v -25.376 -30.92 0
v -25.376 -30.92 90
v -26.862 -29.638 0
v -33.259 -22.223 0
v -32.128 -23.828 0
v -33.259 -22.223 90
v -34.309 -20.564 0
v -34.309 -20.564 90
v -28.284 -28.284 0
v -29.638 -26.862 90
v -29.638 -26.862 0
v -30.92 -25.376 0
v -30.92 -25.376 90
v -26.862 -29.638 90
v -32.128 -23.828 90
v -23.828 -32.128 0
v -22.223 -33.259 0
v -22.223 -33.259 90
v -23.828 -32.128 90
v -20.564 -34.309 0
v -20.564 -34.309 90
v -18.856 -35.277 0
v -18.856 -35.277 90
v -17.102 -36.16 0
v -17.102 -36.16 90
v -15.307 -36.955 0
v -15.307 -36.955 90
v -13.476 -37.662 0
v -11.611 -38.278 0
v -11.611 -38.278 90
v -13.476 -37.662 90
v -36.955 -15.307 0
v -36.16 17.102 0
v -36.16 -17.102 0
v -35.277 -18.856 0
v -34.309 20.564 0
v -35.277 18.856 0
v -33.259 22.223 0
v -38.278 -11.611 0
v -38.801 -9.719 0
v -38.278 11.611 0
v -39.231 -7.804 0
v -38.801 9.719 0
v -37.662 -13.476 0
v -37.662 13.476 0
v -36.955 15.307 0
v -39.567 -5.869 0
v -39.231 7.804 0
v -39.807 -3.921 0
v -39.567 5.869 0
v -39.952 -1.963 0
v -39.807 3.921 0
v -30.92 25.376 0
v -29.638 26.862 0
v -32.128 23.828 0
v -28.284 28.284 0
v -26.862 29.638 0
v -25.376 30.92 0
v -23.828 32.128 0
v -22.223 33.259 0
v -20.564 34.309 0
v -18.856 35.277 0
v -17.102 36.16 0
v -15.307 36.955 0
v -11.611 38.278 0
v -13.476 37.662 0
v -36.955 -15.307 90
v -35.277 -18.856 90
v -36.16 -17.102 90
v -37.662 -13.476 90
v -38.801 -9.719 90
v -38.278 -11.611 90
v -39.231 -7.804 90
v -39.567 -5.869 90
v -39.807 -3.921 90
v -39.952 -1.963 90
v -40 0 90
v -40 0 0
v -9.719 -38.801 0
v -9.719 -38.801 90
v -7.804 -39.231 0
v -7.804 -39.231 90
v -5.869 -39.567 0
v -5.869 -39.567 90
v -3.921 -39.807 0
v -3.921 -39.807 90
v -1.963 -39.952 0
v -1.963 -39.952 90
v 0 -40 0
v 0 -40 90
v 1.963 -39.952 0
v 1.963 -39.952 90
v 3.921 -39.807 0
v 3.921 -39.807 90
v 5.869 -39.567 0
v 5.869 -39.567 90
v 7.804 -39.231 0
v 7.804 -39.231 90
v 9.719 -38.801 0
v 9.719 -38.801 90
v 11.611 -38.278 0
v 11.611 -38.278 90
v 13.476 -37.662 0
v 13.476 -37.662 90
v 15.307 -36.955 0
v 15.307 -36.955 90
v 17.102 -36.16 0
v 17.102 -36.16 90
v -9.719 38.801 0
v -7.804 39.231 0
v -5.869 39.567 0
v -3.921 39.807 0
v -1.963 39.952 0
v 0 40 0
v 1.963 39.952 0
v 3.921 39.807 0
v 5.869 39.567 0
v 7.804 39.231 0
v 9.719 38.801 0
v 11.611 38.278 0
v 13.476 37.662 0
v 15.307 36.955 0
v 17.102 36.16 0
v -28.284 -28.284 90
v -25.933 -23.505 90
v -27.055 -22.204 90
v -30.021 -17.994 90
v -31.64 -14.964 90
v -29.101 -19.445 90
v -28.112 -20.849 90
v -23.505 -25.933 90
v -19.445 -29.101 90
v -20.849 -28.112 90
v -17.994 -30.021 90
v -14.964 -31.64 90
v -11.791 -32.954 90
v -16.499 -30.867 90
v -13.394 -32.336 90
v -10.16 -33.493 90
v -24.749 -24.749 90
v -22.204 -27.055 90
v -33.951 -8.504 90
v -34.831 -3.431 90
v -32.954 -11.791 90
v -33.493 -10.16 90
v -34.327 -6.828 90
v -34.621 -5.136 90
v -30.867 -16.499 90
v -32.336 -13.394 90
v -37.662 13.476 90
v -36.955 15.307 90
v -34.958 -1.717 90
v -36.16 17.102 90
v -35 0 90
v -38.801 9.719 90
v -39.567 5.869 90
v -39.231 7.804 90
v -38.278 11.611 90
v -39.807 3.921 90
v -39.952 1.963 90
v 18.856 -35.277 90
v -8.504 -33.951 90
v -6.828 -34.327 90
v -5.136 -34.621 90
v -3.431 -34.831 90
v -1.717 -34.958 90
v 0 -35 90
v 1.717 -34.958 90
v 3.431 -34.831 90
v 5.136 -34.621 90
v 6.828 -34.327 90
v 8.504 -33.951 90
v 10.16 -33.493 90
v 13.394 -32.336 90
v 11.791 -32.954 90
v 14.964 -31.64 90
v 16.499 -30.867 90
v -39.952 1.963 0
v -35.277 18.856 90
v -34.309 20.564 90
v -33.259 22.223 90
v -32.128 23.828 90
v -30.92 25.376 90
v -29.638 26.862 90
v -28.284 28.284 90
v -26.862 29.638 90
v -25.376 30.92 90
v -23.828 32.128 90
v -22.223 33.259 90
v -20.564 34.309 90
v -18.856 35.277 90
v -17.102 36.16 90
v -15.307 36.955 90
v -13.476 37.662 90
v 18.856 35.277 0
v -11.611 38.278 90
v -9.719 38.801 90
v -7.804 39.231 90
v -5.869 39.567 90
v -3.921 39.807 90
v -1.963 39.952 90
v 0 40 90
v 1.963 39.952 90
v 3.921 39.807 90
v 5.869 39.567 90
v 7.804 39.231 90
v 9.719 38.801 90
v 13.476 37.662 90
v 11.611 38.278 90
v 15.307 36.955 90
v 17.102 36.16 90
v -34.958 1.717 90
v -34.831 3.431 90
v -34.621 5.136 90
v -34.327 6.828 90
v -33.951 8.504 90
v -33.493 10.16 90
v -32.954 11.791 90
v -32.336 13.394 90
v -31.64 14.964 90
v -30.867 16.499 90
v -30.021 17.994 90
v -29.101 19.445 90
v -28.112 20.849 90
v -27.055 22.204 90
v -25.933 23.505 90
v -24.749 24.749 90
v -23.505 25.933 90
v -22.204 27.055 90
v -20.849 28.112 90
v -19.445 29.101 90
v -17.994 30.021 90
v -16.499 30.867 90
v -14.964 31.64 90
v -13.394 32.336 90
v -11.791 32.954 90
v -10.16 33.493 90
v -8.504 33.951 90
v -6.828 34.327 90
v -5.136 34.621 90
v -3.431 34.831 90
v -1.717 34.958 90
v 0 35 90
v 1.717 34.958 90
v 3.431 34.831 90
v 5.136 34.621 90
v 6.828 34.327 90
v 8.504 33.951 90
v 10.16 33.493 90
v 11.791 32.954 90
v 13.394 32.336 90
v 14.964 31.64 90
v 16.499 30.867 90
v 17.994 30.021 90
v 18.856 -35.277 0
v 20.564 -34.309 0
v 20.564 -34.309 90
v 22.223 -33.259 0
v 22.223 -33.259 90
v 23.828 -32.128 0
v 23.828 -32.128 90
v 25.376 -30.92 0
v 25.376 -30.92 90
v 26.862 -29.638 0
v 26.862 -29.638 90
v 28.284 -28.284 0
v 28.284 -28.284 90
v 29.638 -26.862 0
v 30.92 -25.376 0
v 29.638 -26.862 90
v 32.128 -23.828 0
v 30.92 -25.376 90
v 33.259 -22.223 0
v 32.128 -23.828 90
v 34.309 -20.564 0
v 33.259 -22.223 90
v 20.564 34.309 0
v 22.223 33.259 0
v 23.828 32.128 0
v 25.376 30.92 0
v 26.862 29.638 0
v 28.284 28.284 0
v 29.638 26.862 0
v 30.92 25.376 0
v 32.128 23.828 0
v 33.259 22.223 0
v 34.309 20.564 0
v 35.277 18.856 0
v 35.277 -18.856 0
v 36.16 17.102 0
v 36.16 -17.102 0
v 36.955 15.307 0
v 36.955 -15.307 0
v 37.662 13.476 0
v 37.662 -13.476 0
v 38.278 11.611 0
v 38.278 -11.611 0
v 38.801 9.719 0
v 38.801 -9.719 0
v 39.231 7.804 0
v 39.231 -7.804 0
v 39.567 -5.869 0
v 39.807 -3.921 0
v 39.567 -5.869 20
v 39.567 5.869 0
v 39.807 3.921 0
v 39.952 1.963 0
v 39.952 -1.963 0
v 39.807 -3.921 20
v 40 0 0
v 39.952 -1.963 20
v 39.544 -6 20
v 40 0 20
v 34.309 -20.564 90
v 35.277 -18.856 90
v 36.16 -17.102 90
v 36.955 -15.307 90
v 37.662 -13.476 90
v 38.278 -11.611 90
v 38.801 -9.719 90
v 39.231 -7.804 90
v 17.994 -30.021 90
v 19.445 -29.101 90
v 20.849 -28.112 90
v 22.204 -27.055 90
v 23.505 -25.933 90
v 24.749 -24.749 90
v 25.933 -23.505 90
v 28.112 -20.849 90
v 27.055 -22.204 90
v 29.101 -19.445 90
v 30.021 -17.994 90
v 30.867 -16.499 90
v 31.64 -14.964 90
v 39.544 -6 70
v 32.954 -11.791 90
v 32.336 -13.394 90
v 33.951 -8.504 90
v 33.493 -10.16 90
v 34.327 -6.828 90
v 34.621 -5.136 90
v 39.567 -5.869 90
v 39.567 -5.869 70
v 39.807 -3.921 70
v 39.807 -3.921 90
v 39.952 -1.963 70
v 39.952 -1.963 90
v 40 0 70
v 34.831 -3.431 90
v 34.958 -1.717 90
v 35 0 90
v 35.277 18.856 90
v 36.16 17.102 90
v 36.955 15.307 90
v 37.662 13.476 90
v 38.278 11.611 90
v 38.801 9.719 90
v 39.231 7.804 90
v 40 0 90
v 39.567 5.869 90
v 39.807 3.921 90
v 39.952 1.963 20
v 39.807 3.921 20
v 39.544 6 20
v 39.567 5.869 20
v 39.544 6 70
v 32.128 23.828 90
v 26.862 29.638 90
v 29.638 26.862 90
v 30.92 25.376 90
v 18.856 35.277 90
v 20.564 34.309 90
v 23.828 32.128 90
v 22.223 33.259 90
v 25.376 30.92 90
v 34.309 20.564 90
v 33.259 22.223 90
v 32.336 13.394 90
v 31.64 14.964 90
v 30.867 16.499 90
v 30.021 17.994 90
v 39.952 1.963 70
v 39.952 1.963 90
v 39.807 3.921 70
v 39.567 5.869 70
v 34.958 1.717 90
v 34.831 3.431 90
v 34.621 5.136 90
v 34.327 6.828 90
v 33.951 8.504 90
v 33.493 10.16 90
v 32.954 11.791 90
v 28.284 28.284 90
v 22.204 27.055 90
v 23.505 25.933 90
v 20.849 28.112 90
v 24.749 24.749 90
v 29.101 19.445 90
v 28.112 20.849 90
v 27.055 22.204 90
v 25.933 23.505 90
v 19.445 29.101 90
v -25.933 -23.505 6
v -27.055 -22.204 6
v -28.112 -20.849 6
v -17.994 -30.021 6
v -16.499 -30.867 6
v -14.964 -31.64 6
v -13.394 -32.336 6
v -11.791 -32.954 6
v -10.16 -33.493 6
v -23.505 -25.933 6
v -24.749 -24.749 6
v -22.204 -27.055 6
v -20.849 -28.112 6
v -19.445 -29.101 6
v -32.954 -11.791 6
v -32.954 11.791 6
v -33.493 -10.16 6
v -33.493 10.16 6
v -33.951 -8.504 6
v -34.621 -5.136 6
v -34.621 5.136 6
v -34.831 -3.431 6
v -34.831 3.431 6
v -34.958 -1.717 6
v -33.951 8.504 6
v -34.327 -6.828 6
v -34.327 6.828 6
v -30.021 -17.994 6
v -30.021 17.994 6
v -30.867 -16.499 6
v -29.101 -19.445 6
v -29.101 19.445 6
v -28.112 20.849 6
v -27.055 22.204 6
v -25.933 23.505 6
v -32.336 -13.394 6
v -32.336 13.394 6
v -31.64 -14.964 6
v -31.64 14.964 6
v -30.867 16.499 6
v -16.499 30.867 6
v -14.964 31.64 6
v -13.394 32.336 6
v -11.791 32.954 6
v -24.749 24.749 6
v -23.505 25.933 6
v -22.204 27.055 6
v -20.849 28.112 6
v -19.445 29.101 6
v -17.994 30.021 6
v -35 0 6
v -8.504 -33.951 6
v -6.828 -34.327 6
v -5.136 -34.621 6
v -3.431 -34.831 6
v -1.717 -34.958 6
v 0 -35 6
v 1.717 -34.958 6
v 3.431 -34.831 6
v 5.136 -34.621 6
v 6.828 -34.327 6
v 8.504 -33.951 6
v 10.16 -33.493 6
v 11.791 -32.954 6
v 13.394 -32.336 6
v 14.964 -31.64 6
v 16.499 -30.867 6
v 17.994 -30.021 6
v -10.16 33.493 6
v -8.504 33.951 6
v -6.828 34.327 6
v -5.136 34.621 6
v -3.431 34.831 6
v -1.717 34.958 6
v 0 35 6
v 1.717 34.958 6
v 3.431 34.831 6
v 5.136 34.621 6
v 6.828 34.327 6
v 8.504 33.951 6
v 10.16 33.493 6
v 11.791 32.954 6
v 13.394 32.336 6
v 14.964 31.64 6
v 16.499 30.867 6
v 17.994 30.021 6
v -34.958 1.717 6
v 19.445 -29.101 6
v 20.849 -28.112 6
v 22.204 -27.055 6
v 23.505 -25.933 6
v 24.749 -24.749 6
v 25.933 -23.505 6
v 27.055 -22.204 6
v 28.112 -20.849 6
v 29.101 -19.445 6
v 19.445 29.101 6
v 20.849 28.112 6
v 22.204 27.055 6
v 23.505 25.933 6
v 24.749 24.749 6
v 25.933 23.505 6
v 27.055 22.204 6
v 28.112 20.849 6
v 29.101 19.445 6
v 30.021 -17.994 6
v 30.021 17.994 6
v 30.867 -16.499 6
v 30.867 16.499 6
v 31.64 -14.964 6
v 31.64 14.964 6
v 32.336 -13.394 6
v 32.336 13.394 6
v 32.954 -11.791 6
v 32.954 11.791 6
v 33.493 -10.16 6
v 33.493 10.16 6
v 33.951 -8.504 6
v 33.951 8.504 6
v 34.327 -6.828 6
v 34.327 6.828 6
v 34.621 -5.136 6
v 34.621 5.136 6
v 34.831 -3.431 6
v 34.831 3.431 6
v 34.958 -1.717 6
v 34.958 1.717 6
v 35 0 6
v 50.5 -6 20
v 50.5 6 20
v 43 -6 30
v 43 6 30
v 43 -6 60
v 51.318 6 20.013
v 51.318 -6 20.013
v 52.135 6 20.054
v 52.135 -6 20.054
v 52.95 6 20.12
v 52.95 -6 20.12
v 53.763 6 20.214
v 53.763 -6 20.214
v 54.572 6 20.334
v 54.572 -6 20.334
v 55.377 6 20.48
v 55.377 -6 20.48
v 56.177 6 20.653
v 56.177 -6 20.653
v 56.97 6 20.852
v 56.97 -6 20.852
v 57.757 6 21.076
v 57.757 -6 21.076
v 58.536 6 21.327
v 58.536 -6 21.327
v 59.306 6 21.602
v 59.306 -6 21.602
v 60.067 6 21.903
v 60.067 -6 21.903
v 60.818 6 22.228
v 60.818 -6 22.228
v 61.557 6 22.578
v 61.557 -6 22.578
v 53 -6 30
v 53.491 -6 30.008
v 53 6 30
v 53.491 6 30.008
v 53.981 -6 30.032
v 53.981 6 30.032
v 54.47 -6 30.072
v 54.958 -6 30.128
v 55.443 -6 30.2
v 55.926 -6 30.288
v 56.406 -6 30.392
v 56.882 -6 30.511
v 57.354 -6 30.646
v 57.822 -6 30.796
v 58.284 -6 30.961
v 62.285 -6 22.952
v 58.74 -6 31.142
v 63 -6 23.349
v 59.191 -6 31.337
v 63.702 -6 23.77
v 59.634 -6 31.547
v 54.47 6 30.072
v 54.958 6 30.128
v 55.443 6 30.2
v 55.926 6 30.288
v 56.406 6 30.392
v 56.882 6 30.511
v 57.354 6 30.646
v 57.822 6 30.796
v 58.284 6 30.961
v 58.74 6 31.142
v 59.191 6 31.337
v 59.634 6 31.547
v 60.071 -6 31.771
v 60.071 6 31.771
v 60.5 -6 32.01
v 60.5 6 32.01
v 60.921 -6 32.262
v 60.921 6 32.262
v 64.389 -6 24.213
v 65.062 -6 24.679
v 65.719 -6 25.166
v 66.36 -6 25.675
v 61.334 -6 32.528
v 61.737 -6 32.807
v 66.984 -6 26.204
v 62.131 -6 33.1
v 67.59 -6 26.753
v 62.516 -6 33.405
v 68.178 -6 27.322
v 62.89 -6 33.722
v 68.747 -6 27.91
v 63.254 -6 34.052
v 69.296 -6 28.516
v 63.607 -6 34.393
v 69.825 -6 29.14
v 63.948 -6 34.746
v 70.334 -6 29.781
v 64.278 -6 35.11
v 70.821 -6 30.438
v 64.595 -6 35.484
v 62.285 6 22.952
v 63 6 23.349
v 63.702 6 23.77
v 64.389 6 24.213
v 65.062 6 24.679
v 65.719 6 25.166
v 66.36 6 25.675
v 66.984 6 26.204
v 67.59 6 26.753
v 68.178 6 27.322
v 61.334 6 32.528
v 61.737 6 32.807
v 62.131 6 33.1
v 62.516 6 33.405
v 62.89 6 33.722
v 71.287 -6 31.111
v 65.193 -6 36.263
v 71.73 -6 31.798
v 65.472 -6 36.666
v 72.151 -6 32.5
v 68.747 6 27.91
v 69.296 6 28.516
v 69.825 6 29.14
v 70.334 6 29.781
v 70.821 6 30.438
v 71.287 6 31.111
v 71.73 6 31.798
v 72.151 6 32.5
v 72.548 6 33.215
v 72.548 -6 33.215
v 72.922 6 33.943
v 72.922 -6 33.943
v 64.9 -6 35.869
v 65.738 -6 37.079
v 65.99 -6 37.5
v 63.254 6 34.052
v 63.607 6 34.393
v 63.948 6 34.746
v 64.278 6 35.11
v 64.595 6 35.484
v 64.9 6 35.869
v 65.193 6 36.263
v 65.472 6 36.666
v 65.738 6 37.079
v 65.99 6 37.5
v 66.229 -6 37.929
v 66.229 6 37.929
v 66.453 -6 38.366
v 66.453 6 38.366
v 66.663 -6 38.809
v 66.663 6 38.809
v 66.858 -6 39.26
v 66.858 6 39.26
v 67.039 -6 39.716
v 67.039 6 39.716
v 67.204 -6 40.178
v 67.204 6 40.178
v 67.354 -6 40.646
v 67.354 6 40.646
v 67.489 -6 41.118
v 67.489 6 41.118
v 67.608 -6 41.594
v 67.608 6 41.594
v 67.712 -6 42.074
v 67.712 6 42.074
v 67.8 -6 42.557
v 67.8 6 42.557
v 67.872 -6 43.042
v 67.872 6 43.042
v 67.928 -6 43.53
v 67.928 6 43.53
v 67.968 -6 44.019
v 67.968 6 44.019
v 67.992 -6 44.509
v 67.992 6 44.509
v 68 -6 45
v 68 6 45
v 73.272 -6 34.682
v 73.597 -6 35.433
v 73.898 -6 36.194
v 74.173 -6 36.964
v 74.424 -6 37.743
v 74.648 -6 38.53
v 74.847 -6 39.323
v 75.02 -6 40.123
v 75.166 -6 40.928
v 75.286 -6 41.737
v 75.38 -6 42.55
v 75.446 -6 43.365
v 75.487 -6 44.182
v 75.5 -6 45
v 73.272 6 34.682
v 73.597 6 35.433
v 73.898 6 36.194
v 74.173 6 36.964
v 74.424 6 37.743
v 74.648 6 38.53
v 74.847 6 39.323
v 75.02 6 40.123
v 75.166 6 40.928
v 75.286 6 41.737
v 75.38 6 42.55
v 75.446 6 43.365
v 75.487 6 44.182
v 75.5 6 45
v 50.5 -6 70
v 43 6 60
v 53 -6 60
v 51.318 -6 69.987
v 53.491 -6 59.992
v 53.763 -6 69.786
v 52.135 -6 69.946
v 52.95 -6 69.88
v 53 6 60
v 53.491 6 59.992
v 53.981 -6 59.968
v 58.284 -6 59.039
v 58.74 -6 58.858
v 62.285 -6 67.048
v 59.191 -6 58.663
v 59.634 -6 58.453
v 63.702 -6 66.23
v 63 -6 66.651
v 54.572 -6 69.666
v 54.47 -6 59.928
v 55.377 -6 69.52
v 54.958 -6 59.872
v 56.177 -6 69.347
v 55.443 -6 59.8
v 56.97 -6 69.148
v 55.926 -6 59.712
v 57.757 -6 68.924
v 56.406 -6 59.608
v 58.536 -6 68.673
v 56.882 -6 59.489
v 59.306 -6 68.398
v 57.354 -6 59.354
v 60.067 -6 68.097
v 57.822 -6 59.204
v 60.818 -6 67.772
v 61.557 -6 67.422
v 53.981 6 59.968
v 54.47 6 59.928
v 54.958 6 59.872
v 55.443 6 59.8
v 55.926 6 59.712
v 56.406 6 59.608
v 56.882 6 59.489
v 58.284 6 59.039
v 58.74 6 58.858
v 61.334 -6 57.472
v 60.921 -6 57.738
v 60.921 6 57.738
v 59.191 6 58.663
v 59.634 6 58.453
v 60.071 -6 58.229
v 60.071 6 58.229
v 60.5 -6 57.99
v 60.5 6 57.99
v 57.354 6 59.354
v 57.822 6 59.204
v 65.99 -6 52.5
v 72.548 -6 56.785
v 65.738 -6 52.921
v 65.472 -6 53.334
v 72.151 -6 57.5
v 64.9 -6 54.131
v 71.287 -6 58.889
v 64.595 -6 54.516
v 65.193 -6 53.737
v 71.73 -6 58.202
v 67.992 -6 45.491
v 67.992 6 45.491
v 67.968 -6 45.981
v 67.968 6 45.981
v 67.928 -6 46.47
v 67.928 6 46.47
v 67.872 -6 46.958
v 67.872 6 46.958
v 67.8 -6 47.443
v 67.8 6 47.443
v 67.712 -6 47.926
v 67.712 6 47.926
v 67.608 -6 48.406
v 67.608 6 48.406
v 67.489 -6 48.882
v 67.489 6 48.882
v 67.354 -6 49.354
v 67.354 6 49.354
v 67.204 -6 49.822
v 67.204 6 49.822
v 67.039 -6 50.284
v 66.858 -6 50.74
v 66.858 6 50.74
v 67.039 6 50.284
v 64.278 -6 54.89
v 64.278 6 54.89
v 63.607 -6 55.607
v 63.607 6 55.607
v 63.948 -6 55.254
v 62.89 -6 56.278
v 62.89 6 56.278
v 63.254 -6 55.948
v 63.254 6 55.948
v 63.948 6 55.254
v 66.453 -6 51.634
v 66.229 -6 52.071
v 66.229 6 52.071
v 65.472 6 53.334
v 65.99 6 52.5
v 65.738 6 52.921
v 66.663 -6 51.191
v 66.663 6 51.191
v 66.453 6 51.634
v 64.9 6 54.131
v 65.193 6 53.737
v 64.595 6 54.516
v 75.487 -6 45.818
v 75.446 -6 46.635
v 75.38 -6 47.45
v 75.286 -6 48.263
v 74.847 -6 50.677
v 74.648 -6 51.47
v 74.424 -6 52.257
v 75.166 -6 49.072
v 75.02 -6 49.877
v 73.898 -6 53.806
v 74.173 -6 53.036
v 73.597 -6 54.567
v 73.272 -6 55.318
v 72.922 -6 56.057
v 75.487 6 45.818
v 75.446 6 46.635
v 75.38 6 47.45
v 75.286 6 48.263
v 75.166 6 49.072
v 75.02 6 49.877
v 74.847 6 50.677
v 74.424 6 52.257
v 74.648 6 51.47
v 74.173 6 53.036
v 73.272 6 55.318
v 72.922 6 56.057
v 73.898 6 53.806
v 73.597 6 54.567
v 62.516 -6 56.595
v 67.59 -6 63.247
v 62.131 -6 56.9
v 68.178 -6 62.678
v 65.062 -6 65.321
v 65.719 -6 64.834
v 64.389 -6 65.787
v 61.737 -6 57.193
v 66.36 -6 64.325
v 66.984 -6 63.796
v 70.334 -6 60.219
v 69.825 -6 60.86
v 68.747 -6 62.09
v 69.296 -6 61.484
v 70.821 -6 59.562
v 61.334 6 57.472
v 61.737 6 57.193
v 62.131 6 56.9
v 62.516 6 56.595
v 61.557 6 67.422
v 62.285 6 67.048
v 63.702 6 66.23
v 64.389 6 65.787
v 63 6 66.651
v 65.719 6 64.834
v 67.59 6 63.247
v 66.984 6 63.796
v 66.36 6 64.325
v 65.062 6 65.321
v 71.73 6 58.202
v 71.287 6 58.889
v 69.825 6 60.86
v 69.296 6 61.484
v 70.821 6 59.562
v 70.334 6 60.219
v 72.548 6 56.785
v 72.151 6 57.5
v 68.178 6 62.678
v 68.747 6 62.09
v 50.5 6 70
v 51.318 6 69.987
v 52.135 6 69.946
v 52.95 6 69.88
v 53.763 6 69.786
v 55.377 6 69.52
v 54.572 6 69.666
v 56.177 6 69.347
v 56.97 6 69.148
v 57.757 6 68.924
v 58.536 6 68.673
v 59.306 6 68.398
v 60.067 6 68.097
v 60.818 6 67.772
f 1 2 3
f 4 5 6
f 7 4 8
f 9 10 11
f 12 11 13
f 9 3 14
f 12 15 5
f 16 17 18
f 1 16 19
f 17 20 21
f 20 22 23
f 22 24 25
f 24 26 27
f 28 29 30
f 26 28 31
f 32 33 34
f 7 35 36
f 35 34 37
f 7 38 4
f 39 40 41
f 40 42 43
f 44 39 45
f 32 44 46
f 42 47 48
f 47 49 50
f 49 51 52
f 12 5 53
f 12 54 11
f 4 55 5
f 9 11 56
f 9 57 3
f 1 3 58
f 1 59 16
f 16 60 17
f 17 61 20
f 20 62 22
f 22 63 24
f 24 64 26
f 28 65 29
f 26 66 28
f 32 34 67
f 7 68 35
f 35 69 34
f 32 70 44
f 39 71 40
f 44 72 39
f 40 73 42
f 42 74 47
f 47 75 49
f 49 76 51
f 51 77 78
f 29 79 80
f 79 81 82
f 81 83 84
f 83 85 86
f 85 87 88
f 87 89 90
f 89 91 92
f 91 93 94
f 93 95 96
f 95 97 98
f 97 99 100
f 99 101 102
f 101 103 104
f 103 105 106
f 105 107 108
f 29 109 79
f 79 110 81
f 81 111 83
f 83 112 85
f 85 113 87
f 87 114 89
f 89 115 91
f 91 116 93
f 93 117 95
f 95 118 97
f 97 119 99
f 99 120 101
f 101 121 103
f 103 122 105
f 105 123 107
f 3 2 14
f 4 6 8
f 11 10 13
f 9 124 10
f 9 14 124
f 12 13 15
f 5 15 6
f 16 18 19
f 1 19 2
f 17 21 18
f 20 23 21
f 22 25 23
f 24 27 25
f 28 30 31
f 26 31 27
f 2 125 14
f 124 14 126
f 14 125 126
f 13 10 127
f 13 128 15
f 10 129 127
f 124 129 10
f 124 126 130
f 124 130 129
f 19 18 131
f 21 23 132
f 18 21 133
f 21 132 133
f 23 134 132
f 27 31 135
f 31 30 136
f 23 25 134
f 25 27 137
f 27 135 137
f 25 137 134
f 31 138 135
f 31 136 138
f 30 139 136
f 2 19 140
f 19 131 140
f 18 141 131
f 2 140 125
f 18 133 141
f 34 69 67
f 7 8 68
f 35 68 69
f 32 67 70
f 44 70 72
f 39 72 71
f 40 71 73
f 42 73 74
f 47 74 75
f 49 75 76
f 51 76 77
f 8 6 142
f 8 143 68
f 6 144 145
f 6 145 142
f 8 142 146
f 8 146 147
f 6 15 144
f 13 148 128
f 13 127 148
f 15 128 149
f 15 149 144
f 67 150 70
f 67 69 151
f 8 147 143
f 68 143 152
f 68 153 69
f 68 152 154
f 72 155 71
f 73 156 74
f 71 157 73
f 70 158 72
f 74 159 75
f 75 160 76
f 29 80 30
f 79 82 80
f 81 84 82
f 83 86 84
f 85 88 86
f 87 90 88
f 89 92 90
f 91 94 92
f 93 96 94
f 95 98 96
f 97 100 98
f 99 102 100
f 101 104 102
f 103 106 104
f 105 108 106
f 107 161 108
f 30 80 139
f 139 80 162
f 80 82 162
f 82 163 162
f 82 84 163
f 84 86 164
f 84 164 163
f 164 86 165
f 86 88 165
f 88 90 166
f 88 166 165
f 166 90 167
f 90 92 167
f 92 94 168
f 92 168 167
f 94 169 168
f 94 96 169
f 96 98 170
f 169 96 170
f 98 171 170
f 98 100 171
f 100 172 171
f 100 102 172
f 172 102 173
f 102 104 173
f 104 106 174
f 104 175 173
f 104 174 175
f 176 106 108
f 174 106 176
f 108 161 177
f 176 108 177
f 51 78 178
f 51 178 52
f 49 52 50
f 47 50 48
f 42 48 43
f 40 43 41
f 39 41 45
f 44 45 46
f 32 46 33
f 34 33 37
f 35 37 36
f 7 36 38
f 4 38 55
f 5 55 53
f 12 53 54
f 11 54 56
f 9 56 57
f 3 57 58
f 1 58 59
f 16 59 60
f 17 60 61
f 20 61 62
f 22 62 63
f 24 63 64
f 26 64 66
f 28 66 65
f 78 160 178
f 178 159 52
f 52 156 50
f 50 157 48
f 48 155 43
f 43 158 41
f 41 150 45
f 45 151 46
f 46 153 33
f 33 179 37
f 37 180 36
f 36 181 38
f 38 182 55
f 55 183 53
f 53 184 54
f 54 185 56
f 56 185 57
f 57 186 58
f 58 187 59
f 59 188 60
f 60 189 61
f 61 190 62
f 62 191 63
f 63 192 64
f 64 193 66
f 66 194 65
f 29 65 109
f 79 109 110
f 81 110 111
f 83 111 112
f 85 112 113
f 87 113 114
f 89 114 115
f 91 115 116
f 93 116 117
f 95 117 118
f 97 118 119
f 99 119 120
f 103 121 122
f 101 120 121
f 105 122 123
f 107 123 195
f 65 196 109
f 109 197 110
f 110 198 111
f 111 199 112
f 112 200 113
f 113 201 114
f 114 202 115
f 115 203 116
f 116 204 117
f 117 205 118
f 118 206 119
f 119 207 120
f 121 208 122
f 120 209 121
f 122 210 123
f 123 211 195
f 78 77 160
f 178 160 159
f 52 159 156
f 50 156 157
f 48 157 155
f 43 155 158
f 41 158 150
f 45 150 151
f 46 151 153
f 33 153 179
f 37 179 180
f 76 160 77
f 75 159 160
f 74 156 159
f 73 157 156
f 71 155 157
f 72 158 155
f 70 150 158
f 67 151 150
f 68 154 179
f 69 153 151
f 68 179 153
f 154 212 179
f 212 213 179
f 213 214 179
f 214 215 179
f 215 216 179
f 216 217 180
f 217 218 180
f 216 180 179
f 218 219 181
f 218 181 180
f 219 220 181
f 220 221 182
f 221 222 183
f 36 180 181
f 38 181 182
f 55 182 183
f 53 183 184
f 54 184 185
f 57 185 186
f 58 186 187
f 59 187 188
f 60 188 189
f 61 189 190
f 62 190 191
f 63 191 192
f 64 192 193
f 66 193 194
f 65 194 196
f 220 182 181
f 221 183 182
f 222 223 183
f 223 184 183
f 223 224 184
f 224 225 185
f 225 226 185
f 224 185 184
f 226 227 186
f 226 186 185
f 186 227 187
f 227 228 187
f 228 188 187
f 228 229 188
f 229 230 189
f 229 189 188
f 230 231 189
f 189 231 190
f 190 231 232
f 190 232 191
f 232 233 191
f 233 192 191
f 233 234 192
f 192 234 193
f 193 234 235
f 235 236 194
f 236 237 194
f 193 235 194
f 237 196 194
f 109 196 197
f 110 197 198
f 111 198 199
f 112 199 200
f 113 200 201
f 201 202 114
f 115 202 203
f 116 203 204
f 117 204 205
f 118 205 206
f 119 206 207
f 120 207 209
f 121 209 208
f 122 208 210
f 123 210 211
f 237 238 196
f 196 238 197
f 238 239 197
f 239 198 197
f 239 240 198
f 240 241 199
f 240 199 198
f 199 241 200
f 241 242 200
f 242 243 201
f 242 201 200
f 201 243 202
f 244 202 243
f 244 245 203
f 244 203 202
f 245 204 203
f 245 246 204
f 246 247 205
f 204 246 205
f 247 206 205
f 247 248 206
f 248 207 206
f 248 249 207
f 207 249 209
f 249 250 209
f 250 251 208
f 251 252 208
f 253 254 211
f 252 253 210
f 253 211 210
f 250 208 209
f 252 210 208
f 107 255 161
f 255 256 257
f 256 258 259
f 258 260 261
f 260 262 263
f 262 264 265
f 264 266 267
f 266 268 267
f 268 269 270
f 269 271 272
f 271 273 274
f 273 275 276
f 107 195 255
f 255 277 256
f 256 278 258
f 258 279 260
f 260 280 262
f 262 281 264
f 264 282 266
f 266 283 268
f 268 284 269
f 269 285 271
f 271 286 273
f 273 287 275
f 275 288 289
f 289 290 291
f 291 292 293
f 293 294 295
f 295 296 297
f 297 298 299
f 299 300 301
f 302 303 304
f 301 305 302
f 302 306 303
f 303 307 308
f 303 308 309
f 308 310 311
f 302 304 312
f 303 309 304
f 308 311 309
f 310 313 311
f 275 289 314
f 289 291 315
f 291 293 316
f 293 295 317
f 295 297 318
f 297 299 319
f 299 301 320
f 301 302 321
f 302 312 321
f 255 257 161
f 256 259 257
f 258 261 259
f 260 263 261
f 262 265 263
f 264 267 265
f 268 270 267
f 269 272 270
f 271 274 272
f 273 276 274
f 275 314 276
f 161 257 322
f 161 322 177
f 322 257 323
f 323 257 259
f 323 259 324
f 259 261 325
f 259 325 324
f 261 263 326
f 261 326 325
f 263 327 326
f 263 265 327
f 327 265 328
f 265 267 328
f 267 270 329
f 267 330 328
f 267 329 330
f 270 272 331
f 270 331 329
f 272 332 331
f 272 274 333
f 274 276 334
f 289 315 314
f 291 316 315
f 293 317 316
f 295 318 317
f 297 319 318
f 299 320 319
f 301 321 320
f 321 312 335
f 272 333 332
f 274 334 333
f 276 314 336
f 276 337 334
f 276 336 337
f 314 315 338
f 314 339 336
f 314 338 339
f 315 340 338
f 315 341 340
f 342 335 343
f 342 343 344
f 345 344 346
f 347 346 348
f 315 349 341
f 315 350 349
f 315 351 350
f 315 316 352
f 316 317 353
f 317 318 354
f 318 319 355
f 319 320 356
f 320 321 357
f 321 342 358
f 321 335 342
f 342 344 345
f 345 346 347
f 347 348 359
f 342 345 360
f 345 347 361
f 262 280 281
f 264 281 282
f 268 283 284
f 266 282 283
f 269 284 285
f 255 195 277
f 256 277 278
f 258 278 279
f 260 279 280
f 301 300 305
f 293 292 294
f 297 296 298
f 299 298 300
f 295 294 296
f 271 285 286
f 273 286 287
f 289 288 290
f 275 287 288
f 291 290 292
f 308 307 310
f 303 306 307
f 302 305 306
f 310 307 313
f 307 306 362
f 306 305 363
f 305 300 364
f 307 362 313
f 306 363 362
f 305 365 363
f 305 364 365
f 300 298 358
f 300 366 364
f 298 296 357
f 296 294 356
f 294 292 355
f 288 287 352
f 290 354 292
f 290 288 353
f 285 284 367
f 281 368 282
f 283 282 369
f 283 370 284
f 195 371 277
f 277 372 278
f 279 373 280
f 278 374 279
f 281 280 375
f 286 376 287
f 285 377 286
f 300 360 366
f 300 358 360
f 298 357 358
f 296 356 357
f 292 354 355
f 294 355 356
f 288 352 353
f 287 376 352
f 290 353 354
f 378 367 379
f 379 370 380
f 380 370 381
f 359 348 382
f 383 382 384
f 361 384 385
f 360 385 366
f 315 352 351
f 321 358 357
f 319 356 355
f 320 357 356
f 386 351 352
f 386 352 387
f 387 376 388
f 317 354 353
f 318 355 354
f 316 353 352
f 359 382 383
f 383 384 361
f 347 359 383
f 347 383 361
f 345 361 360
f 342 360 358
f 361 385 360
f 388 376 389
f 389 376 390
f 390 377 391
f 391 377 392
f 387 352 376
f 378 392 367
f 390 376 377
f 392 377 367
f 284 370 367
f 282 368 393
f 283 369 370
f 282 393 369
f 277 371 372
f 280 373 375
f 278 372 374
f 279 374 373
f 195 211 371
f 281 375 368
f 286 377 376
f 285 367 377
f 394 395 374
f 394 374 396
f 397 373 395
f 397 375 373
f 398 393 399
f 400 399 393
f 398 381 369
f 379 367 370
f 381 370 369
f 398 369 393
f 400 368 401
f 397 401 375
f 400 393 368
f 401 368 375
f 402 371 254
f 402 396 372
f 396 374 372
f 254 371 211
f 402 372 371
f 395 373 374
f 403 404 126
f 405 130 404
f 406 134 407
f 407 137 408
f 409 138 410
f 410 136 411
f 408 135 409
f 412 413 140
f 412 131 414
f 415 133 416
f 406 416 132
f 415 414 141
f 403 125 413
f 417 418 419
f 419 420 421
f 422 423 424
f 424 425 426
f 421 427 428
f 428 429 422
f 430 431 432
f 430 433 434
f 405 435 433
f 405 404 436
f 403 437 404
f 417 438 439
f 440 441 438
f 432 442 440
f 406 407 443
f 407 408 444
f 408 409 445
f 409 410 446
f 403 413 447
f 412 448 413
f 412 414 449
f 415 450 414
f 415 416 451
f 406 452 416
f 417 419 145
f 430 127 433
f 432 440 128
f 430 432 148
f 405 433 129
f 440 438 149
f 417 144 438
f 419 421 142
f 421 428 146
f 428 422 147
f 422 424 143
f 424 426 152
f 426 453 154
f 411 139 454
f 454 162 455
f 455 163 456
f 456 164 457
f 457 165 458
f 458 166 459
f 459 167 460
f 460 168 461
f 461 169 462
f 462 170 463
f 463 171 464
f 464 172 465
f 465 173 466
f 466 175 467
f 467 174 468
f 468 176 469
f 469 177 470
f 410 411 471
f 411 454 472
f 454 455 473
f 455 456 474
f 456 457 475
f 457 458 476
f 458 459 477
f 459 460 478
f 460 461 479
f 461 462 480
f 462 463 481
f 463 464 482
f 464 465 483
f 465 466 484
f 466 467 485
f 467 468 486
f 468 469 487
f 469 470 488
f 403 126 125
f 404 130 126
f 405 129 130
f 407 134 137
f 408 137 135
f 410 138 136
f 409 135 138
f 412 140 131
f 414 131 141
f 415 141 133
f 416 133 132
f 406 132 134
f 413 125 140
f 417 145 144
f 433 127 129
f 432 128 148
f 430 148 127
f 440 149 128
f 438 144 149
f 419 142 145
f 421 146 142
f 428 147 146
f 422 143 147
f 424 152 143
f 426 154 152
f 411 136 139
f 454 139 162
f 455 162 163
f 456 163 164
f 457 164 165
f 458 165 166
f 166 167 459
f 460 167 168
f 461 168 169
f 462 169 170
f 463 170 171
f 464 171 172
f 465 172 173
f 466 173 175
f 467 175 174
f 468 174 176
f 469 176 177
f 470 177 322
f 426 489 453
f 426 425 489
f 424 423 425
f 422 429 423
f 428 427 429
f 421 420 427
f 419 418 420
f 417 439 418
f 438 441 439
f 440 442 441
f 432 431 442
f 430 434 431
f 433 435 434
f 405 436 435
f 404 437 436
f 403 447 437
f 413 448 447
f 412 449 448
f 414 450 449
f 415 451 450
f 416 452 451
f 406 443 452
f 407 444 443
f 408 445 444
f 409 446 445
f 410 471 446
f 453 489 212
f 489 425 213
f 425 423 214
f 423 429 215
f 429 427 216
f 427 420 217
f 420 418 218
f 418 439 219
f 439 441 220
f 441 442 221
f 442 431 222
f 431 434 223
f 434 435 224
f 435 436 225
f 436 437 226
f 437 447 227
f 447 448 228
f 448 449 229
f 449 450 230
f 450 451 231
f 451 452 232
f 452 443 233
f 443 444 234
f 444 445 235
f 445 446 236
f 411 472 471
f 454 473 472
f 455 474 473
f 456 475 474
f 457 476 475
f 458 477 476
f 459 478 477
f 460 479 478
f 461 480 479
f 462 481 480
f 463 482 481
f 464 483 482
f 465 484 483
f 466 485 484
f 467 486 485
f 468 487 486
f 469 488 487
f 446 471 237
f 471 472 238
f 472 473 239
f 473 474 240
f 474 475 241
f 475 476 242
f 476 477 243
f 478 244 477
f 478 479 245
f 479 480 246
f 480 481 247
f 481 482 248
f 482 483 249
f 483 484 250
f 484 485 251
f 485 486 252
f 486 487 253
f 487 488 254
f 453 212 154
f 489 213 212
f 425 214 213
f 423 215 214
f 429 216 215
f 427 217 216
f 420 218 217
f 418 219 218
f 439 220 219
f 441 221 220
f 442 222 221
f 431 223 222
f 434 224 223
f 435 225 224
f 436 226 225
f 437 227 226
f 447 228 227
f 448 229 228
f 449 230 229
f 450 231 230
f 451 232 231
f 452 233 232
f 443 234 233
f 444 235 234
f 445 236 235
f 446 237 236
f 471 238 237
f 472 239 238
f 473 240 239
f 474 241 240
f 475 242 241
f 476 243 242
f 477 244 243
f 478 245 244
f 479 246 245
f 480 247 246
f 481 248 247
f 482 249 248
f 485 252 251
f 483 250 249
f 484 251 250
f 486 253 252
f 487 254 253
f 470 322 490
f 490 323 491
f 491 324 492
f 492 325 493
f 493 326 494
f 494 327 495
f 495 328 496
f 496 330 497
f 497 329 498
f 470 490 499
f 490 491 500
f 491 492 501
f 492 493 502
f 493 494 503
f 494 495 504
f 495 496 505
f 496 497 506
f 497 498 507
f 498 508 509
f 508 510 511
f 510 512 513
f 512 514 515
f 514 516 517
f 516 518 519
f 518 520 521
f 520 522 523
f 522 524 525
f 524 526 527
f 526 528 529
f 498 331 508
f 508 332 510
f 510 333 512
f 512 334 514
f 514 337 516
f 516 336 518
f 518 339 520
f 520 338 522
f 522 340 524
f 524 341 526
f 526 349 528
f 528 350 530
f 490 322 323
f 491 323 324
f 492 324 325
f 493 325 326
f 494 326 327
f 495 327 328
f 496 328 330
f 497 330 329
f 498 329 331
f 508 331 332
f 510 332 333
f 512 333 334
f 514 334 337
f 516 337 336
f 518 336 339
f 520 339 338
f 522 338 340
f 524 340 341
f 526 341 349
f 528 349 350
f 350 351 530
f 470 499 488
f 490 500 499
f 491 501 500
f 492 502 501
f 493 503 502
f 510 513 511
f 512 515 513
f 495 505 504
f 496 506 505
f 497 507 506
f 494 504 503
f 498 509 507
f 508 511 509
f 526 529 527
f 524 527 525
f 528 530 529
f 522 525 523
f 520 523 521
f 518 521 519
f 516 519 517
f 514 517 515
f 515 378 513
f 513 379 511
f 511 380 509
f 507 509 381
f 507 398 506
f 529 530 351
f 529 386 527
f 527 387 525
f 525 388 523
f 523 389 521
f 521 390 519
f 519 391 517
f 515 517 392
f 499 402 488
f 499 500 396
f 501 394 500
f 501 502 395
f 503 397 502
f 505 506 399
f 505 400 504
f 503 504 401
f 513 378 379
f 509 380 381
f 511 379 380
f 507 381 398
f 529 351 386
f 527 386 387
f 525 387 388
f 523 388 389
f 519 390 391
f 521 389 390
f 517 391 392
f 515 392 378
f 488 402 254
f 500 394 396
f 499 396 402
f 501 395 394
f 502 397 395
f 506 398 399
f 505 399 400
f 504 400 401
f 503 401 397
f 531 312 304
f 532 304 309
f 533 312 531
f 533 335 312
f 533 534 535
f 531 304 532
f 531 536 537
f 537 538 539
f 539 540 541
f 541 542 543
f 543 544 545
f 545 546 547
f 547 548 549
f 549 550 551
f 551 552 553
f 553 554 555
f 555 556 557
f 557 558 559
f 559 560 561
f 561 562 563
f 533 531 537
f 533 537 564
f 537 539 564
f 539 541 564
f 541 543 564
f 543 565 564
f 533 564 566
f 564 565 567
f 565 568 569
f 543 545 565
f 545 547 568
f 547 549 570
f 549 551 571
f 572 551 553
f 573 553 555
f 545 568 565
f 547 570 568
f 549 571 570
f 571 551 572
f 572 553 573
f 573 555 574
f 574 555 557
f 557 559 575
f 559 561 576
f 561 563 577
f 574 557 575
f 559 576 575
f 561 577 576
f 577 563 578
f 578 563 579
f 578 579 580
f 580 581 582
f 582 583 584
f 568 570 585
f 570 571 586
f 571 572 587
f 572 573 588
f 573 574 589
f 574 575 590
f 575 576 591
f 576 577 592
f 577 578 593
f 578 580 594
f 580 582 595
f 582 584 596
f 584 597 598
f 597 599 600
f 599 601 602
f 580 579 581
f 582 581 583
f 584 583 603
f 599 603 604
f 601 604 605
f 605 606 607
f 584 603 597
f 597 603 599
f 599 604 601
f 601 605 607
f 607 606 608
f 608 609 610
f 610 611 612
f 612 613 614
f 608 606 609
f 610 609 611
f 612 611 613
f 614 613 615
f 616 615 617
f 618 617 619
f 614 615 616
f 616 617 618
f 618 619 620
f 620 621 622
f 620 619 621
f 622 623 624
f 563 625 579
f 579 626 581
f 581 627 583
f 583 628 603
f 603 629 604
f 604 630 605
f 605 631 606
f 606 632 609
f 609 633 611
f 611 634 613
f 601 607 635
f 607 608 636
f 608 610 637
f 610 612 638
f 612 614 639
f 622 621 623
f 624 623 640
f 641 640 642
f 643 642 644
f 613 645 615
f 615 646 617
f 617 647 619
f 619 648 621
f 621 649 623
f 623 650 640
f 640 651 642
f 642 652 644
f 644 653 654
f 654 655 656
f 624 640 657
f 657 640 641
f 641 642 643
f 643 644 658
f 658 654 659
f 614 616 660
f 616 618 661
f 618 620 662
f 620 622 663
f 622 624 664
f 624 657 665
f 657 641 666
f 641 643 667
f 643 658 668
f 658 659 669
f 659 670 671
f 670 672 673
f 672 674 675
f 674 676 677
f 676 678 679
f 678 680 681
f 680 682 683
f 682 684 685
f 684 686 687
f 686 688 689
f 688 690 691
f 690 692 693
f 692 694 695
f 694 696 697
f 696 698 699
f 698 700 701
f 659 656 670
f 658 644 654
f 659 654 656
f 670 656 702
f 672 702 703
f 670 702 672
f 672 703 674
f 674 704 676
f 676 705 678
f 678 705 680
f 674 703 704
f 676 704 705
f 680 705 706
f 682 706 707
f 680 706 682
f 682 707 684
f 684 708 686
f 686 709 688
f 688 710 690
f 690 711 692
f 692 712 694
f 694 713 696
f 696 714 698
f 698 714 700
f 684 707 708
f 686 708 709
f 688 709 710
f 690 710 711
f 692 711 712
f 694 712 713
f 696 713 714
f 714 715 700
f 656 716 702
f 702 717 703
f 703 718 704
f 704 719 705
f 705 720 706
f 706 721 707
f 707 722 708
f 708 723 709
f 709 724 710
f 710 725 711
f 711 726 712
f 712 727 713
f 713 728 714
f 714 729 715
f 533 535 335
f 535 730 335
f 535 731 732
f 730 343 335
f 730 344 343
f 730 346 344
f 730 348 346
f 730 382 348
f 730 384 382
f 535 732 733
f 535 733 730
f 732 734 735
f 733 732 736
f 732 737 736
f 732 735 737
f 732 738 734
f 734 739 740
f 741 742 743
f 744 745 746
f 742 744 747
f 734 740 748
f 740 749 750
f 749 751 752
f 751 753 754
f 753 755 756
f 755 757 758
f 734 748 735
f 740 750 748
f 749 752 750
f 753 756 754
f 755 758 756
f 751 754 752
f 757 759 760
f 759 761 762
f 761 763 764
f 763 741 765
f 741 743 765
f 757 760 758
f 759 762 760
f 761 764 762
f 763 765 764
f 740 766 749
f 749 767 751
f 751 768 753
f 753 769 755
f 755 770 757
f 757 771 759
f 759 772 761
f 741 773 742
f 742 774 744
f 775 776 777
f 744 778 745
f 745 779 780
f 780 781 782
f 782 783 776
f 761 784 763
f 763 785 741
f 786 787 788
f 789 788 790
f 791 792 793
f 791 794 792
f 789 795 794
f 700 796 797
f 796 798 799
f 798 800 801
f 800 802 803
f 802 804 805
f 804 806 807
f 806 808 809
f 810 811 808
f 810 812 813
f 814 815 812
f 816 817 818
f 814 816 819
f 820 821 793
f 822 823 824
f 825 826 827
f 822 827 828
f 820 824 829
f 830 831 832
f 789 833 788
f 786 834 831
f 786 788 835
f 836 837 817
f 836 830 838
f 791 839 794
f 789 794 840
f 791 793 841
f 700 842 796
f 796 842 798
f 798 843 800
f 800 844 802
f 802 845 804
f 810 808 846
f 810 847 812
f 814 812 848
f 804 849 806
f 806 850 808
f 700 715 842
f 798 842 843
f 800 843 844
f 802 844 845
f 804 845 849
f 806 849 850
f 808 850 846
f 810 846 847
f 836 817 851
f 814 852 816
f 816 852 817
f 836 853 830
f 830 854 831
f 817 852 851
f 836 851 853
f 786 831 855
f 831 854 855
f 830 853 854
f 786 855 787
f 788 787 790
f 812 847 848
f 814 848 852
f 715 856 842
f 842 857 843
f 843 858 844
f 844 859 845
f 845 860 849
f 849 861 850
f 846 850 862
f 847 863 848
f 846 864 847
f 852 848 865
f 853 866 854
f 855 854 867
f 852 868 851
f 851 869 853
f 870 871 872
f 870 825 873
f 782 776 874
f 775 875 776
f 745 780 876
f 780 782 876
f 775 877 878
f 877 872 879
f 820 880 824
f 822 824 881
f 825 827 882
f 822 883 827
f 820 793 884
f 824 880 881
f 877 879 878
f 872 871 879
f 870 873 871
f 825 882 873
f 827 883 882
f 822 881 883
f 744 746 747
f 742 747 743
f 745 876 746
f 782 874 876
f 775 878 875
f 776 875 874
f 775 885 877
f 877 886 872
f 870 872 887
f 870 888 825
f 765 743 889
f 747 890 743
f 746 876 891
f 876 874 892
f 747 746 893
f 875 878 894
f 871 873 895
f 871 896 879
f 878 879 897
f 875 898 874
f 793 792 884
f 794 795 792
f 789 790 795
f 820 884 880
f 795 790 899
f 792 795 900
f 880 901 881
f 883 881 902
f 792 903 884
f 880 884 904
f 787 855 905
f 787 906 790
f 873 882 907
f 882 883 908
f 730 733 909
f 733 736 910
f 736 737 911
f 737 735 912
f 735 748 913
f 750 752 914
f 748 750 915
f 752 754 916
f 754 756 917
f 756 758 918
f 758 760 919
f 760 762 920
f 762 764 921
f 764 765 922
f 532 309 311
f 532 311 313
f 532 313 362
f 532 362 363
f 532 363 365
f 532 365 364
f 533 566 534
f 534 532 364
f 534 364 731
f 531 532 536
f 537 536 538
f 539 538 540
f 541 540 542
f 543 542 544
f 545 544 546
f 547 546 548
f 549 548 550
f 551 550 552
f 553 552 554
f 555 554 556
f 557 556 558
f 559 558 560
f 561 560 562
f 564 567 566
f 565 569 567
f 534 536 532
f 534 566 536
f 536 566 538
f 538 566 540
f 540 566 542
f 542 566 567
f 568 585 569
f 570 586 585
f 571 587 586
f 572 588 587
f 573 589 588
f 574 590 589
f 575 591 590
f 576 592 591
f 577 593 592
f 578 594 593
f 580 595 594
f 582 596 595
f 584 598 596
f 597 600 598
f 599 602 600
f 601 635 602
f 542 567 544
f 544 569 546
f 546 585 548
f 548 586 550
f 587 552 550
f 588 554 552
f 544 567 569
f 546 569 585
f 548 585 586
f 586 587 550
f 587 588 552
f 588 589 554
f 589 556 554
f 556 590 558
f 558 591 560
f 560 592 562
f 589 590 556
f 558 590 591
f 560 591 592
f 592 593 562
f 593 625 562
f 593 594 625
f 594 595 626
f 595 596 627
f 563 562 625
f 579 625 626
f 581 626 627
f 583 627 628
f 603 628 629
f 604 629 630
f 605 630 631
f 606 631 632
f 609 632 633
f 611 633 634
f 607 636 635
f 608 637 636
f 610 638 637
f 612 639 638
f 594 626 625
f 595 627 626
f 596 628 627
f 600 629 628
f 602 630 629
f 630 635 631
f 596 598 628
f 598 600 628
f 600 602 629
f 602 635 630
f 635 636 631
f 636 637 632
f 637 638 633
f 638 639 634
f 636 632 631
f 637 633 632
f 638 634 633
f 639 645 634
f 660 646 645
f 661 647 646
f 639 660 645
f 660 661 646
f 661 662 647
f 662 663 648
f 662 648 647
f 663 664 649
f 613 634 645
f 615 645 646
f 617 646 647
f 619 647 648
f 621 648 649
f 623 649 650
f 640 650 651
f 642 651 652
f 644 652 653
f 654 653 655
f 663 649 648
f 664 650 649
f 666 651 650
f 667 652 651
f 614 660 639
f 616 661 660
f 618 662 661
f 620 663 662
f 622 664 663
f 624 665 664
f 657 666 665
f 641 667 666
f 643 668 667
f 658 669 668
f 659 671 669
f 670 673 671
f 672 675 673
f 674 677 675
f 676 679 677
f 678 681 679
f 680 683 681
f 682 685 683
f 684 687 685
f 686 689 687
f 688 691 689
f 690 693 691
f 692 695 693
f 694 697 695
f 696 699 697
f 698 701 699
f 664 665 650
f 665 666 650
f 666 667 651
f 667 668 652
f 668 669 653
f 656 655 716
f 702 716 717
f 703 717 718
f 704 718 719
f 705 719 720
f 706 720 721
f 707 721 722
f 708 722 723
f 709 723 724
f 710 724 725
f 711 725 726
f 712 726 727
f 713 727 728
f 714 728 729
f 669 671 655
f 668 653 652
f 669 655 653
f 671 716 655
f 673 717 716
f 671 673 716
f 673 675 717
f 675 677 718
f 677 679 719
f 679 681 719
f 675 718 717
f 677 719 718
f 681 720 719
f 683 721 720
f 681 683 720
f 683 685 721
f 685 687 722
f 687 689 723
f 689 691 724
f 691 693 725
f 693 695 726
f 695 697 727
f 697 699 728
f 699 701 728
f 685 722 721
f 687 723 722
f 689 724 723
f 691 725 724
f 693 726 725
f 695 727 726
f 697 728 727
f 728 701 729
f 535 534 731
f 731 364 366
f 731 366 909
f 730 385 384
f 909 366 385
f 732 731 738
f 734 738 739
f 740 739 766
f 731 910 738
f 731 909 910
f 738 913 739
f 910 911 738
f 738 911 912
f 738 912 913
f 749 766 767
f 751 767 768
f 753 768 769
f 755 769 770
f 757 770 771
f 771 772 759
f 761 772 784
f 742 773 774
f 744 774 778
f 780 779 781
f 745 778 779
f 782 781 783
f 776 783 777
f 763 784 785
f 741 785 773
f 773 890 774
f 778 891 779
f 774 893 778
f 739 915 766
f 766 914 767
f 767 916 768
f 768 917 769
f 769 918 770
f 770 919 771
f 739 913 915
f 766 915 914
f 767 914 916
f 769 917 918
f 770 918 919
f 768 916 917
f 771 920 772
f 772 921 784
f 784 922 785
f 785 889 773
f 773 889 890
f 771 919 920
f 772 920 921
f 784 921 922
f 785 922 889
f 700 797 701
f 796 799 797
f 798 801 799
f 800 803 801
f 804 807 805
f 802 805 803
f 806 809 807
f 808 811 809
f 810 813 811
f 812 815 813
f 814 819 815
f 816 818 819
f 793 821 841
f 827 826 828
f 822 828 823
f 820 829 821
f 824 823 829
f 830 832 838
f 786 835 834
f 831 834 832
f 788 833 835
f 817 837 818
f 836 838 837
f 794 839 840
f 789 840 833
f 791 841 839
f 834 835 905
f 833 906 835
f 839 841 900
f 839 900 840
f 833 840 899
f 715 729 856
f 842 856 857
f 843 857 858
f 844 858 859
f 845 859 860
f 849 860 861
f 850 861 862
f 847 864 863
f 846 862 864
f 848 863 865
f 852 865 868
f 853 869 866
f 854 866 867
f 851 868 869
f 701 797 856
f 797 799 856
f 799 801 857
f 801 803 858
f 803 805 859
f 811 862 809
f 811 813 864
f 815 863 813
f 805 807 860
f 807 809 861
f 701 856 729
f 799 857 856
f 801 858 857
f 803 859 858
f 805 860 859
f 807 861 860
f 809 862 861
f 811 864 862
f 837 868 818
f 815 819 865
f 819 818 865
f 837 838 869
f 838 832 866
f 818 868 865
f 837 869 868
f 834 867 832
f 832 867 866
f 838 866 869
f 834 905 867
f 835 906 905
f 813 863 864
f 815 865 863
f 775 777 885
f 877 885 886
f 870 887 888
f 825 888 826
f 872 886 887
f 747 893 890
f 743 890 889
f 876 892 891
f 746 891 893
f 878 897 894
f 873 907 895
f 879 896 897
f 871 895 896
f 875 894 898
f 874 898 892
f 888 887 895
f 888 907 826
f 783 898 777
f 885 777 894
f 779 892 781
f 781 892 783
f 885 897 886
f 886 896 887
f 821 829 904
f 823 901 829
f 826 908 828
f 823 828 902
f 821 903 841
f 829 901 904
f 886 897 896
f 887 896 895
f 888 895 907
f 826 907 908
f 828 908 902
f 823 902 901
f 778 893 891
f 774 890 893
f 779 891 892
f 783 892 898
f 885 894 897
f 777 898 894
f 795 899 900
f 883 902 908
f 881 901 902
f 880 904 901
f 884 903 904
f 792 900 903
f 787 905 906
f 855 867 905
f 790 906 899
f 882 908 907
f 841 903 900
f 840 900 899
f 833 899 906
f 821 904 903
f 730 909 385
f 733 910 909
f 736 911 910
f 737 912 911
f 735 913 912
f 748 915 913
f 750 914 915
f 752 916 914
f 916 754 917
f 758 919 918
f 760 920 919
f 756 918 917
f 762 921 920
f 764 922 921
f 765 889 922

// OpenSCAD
$fn = 128;

outer_diameter = 80;
inner_diameter = 70;
mug_height = 90;
base_thickness = 6;

handle_thickness = 12;  // Y方向の厚み
handle_center_z = mug_height / 2;
handle_attach_x = 38;   // 本体に重ねて確実に接続

// D字の外形：本体側は直線、外側は半円
outer_arc_x = 50.5;
outer_arc_radius = 25;

// 指を入れる開口：高さ30mm、X方向の幅25mm
opening_height = 30;
opening_width = 25;
opening_left_x = 43;
inner_arc_radius = opening_height / 2;
inner_arc_x = opening_left_x + opening_width - inner_arc_radius;

module d_profile(left_x, arc_x, center_z, radius, steps = 96) {
    polygon(points = concat(
        [[left_x, center_z - radius]],
        [for (i = [0 : steps])
            [arc_x + radius * cos(-90 + 180 * i / steps),
             center_z + radius * sin(-90 + 180 * i / steps)]],
        [[left_x, center_z + radius]]
    ));
}

module mug_body() {
    difference() {
        cylinder(d = outer_diameter, h = mug_height);
        translate([0, 0, base_thickness])
            cylinder(d = inner_diameter,
                     h = mug_height - base_thickness + 1);
    }
}

module handle() {
    rotate([90, 0, 0])
        linear_extrude(height = handle_thickness, center = true, convexity = 10)
            difference() {
                d_profile(handle_attach_x, outer_arc_x,
                          handle_center_z, outer_arc_radius);
                d_profile(opening_left_x, inner_arc_x,
                          handle_center_z, inner_arc_radius);
            }
}

union() {
    mug_body();
    handle();
}
